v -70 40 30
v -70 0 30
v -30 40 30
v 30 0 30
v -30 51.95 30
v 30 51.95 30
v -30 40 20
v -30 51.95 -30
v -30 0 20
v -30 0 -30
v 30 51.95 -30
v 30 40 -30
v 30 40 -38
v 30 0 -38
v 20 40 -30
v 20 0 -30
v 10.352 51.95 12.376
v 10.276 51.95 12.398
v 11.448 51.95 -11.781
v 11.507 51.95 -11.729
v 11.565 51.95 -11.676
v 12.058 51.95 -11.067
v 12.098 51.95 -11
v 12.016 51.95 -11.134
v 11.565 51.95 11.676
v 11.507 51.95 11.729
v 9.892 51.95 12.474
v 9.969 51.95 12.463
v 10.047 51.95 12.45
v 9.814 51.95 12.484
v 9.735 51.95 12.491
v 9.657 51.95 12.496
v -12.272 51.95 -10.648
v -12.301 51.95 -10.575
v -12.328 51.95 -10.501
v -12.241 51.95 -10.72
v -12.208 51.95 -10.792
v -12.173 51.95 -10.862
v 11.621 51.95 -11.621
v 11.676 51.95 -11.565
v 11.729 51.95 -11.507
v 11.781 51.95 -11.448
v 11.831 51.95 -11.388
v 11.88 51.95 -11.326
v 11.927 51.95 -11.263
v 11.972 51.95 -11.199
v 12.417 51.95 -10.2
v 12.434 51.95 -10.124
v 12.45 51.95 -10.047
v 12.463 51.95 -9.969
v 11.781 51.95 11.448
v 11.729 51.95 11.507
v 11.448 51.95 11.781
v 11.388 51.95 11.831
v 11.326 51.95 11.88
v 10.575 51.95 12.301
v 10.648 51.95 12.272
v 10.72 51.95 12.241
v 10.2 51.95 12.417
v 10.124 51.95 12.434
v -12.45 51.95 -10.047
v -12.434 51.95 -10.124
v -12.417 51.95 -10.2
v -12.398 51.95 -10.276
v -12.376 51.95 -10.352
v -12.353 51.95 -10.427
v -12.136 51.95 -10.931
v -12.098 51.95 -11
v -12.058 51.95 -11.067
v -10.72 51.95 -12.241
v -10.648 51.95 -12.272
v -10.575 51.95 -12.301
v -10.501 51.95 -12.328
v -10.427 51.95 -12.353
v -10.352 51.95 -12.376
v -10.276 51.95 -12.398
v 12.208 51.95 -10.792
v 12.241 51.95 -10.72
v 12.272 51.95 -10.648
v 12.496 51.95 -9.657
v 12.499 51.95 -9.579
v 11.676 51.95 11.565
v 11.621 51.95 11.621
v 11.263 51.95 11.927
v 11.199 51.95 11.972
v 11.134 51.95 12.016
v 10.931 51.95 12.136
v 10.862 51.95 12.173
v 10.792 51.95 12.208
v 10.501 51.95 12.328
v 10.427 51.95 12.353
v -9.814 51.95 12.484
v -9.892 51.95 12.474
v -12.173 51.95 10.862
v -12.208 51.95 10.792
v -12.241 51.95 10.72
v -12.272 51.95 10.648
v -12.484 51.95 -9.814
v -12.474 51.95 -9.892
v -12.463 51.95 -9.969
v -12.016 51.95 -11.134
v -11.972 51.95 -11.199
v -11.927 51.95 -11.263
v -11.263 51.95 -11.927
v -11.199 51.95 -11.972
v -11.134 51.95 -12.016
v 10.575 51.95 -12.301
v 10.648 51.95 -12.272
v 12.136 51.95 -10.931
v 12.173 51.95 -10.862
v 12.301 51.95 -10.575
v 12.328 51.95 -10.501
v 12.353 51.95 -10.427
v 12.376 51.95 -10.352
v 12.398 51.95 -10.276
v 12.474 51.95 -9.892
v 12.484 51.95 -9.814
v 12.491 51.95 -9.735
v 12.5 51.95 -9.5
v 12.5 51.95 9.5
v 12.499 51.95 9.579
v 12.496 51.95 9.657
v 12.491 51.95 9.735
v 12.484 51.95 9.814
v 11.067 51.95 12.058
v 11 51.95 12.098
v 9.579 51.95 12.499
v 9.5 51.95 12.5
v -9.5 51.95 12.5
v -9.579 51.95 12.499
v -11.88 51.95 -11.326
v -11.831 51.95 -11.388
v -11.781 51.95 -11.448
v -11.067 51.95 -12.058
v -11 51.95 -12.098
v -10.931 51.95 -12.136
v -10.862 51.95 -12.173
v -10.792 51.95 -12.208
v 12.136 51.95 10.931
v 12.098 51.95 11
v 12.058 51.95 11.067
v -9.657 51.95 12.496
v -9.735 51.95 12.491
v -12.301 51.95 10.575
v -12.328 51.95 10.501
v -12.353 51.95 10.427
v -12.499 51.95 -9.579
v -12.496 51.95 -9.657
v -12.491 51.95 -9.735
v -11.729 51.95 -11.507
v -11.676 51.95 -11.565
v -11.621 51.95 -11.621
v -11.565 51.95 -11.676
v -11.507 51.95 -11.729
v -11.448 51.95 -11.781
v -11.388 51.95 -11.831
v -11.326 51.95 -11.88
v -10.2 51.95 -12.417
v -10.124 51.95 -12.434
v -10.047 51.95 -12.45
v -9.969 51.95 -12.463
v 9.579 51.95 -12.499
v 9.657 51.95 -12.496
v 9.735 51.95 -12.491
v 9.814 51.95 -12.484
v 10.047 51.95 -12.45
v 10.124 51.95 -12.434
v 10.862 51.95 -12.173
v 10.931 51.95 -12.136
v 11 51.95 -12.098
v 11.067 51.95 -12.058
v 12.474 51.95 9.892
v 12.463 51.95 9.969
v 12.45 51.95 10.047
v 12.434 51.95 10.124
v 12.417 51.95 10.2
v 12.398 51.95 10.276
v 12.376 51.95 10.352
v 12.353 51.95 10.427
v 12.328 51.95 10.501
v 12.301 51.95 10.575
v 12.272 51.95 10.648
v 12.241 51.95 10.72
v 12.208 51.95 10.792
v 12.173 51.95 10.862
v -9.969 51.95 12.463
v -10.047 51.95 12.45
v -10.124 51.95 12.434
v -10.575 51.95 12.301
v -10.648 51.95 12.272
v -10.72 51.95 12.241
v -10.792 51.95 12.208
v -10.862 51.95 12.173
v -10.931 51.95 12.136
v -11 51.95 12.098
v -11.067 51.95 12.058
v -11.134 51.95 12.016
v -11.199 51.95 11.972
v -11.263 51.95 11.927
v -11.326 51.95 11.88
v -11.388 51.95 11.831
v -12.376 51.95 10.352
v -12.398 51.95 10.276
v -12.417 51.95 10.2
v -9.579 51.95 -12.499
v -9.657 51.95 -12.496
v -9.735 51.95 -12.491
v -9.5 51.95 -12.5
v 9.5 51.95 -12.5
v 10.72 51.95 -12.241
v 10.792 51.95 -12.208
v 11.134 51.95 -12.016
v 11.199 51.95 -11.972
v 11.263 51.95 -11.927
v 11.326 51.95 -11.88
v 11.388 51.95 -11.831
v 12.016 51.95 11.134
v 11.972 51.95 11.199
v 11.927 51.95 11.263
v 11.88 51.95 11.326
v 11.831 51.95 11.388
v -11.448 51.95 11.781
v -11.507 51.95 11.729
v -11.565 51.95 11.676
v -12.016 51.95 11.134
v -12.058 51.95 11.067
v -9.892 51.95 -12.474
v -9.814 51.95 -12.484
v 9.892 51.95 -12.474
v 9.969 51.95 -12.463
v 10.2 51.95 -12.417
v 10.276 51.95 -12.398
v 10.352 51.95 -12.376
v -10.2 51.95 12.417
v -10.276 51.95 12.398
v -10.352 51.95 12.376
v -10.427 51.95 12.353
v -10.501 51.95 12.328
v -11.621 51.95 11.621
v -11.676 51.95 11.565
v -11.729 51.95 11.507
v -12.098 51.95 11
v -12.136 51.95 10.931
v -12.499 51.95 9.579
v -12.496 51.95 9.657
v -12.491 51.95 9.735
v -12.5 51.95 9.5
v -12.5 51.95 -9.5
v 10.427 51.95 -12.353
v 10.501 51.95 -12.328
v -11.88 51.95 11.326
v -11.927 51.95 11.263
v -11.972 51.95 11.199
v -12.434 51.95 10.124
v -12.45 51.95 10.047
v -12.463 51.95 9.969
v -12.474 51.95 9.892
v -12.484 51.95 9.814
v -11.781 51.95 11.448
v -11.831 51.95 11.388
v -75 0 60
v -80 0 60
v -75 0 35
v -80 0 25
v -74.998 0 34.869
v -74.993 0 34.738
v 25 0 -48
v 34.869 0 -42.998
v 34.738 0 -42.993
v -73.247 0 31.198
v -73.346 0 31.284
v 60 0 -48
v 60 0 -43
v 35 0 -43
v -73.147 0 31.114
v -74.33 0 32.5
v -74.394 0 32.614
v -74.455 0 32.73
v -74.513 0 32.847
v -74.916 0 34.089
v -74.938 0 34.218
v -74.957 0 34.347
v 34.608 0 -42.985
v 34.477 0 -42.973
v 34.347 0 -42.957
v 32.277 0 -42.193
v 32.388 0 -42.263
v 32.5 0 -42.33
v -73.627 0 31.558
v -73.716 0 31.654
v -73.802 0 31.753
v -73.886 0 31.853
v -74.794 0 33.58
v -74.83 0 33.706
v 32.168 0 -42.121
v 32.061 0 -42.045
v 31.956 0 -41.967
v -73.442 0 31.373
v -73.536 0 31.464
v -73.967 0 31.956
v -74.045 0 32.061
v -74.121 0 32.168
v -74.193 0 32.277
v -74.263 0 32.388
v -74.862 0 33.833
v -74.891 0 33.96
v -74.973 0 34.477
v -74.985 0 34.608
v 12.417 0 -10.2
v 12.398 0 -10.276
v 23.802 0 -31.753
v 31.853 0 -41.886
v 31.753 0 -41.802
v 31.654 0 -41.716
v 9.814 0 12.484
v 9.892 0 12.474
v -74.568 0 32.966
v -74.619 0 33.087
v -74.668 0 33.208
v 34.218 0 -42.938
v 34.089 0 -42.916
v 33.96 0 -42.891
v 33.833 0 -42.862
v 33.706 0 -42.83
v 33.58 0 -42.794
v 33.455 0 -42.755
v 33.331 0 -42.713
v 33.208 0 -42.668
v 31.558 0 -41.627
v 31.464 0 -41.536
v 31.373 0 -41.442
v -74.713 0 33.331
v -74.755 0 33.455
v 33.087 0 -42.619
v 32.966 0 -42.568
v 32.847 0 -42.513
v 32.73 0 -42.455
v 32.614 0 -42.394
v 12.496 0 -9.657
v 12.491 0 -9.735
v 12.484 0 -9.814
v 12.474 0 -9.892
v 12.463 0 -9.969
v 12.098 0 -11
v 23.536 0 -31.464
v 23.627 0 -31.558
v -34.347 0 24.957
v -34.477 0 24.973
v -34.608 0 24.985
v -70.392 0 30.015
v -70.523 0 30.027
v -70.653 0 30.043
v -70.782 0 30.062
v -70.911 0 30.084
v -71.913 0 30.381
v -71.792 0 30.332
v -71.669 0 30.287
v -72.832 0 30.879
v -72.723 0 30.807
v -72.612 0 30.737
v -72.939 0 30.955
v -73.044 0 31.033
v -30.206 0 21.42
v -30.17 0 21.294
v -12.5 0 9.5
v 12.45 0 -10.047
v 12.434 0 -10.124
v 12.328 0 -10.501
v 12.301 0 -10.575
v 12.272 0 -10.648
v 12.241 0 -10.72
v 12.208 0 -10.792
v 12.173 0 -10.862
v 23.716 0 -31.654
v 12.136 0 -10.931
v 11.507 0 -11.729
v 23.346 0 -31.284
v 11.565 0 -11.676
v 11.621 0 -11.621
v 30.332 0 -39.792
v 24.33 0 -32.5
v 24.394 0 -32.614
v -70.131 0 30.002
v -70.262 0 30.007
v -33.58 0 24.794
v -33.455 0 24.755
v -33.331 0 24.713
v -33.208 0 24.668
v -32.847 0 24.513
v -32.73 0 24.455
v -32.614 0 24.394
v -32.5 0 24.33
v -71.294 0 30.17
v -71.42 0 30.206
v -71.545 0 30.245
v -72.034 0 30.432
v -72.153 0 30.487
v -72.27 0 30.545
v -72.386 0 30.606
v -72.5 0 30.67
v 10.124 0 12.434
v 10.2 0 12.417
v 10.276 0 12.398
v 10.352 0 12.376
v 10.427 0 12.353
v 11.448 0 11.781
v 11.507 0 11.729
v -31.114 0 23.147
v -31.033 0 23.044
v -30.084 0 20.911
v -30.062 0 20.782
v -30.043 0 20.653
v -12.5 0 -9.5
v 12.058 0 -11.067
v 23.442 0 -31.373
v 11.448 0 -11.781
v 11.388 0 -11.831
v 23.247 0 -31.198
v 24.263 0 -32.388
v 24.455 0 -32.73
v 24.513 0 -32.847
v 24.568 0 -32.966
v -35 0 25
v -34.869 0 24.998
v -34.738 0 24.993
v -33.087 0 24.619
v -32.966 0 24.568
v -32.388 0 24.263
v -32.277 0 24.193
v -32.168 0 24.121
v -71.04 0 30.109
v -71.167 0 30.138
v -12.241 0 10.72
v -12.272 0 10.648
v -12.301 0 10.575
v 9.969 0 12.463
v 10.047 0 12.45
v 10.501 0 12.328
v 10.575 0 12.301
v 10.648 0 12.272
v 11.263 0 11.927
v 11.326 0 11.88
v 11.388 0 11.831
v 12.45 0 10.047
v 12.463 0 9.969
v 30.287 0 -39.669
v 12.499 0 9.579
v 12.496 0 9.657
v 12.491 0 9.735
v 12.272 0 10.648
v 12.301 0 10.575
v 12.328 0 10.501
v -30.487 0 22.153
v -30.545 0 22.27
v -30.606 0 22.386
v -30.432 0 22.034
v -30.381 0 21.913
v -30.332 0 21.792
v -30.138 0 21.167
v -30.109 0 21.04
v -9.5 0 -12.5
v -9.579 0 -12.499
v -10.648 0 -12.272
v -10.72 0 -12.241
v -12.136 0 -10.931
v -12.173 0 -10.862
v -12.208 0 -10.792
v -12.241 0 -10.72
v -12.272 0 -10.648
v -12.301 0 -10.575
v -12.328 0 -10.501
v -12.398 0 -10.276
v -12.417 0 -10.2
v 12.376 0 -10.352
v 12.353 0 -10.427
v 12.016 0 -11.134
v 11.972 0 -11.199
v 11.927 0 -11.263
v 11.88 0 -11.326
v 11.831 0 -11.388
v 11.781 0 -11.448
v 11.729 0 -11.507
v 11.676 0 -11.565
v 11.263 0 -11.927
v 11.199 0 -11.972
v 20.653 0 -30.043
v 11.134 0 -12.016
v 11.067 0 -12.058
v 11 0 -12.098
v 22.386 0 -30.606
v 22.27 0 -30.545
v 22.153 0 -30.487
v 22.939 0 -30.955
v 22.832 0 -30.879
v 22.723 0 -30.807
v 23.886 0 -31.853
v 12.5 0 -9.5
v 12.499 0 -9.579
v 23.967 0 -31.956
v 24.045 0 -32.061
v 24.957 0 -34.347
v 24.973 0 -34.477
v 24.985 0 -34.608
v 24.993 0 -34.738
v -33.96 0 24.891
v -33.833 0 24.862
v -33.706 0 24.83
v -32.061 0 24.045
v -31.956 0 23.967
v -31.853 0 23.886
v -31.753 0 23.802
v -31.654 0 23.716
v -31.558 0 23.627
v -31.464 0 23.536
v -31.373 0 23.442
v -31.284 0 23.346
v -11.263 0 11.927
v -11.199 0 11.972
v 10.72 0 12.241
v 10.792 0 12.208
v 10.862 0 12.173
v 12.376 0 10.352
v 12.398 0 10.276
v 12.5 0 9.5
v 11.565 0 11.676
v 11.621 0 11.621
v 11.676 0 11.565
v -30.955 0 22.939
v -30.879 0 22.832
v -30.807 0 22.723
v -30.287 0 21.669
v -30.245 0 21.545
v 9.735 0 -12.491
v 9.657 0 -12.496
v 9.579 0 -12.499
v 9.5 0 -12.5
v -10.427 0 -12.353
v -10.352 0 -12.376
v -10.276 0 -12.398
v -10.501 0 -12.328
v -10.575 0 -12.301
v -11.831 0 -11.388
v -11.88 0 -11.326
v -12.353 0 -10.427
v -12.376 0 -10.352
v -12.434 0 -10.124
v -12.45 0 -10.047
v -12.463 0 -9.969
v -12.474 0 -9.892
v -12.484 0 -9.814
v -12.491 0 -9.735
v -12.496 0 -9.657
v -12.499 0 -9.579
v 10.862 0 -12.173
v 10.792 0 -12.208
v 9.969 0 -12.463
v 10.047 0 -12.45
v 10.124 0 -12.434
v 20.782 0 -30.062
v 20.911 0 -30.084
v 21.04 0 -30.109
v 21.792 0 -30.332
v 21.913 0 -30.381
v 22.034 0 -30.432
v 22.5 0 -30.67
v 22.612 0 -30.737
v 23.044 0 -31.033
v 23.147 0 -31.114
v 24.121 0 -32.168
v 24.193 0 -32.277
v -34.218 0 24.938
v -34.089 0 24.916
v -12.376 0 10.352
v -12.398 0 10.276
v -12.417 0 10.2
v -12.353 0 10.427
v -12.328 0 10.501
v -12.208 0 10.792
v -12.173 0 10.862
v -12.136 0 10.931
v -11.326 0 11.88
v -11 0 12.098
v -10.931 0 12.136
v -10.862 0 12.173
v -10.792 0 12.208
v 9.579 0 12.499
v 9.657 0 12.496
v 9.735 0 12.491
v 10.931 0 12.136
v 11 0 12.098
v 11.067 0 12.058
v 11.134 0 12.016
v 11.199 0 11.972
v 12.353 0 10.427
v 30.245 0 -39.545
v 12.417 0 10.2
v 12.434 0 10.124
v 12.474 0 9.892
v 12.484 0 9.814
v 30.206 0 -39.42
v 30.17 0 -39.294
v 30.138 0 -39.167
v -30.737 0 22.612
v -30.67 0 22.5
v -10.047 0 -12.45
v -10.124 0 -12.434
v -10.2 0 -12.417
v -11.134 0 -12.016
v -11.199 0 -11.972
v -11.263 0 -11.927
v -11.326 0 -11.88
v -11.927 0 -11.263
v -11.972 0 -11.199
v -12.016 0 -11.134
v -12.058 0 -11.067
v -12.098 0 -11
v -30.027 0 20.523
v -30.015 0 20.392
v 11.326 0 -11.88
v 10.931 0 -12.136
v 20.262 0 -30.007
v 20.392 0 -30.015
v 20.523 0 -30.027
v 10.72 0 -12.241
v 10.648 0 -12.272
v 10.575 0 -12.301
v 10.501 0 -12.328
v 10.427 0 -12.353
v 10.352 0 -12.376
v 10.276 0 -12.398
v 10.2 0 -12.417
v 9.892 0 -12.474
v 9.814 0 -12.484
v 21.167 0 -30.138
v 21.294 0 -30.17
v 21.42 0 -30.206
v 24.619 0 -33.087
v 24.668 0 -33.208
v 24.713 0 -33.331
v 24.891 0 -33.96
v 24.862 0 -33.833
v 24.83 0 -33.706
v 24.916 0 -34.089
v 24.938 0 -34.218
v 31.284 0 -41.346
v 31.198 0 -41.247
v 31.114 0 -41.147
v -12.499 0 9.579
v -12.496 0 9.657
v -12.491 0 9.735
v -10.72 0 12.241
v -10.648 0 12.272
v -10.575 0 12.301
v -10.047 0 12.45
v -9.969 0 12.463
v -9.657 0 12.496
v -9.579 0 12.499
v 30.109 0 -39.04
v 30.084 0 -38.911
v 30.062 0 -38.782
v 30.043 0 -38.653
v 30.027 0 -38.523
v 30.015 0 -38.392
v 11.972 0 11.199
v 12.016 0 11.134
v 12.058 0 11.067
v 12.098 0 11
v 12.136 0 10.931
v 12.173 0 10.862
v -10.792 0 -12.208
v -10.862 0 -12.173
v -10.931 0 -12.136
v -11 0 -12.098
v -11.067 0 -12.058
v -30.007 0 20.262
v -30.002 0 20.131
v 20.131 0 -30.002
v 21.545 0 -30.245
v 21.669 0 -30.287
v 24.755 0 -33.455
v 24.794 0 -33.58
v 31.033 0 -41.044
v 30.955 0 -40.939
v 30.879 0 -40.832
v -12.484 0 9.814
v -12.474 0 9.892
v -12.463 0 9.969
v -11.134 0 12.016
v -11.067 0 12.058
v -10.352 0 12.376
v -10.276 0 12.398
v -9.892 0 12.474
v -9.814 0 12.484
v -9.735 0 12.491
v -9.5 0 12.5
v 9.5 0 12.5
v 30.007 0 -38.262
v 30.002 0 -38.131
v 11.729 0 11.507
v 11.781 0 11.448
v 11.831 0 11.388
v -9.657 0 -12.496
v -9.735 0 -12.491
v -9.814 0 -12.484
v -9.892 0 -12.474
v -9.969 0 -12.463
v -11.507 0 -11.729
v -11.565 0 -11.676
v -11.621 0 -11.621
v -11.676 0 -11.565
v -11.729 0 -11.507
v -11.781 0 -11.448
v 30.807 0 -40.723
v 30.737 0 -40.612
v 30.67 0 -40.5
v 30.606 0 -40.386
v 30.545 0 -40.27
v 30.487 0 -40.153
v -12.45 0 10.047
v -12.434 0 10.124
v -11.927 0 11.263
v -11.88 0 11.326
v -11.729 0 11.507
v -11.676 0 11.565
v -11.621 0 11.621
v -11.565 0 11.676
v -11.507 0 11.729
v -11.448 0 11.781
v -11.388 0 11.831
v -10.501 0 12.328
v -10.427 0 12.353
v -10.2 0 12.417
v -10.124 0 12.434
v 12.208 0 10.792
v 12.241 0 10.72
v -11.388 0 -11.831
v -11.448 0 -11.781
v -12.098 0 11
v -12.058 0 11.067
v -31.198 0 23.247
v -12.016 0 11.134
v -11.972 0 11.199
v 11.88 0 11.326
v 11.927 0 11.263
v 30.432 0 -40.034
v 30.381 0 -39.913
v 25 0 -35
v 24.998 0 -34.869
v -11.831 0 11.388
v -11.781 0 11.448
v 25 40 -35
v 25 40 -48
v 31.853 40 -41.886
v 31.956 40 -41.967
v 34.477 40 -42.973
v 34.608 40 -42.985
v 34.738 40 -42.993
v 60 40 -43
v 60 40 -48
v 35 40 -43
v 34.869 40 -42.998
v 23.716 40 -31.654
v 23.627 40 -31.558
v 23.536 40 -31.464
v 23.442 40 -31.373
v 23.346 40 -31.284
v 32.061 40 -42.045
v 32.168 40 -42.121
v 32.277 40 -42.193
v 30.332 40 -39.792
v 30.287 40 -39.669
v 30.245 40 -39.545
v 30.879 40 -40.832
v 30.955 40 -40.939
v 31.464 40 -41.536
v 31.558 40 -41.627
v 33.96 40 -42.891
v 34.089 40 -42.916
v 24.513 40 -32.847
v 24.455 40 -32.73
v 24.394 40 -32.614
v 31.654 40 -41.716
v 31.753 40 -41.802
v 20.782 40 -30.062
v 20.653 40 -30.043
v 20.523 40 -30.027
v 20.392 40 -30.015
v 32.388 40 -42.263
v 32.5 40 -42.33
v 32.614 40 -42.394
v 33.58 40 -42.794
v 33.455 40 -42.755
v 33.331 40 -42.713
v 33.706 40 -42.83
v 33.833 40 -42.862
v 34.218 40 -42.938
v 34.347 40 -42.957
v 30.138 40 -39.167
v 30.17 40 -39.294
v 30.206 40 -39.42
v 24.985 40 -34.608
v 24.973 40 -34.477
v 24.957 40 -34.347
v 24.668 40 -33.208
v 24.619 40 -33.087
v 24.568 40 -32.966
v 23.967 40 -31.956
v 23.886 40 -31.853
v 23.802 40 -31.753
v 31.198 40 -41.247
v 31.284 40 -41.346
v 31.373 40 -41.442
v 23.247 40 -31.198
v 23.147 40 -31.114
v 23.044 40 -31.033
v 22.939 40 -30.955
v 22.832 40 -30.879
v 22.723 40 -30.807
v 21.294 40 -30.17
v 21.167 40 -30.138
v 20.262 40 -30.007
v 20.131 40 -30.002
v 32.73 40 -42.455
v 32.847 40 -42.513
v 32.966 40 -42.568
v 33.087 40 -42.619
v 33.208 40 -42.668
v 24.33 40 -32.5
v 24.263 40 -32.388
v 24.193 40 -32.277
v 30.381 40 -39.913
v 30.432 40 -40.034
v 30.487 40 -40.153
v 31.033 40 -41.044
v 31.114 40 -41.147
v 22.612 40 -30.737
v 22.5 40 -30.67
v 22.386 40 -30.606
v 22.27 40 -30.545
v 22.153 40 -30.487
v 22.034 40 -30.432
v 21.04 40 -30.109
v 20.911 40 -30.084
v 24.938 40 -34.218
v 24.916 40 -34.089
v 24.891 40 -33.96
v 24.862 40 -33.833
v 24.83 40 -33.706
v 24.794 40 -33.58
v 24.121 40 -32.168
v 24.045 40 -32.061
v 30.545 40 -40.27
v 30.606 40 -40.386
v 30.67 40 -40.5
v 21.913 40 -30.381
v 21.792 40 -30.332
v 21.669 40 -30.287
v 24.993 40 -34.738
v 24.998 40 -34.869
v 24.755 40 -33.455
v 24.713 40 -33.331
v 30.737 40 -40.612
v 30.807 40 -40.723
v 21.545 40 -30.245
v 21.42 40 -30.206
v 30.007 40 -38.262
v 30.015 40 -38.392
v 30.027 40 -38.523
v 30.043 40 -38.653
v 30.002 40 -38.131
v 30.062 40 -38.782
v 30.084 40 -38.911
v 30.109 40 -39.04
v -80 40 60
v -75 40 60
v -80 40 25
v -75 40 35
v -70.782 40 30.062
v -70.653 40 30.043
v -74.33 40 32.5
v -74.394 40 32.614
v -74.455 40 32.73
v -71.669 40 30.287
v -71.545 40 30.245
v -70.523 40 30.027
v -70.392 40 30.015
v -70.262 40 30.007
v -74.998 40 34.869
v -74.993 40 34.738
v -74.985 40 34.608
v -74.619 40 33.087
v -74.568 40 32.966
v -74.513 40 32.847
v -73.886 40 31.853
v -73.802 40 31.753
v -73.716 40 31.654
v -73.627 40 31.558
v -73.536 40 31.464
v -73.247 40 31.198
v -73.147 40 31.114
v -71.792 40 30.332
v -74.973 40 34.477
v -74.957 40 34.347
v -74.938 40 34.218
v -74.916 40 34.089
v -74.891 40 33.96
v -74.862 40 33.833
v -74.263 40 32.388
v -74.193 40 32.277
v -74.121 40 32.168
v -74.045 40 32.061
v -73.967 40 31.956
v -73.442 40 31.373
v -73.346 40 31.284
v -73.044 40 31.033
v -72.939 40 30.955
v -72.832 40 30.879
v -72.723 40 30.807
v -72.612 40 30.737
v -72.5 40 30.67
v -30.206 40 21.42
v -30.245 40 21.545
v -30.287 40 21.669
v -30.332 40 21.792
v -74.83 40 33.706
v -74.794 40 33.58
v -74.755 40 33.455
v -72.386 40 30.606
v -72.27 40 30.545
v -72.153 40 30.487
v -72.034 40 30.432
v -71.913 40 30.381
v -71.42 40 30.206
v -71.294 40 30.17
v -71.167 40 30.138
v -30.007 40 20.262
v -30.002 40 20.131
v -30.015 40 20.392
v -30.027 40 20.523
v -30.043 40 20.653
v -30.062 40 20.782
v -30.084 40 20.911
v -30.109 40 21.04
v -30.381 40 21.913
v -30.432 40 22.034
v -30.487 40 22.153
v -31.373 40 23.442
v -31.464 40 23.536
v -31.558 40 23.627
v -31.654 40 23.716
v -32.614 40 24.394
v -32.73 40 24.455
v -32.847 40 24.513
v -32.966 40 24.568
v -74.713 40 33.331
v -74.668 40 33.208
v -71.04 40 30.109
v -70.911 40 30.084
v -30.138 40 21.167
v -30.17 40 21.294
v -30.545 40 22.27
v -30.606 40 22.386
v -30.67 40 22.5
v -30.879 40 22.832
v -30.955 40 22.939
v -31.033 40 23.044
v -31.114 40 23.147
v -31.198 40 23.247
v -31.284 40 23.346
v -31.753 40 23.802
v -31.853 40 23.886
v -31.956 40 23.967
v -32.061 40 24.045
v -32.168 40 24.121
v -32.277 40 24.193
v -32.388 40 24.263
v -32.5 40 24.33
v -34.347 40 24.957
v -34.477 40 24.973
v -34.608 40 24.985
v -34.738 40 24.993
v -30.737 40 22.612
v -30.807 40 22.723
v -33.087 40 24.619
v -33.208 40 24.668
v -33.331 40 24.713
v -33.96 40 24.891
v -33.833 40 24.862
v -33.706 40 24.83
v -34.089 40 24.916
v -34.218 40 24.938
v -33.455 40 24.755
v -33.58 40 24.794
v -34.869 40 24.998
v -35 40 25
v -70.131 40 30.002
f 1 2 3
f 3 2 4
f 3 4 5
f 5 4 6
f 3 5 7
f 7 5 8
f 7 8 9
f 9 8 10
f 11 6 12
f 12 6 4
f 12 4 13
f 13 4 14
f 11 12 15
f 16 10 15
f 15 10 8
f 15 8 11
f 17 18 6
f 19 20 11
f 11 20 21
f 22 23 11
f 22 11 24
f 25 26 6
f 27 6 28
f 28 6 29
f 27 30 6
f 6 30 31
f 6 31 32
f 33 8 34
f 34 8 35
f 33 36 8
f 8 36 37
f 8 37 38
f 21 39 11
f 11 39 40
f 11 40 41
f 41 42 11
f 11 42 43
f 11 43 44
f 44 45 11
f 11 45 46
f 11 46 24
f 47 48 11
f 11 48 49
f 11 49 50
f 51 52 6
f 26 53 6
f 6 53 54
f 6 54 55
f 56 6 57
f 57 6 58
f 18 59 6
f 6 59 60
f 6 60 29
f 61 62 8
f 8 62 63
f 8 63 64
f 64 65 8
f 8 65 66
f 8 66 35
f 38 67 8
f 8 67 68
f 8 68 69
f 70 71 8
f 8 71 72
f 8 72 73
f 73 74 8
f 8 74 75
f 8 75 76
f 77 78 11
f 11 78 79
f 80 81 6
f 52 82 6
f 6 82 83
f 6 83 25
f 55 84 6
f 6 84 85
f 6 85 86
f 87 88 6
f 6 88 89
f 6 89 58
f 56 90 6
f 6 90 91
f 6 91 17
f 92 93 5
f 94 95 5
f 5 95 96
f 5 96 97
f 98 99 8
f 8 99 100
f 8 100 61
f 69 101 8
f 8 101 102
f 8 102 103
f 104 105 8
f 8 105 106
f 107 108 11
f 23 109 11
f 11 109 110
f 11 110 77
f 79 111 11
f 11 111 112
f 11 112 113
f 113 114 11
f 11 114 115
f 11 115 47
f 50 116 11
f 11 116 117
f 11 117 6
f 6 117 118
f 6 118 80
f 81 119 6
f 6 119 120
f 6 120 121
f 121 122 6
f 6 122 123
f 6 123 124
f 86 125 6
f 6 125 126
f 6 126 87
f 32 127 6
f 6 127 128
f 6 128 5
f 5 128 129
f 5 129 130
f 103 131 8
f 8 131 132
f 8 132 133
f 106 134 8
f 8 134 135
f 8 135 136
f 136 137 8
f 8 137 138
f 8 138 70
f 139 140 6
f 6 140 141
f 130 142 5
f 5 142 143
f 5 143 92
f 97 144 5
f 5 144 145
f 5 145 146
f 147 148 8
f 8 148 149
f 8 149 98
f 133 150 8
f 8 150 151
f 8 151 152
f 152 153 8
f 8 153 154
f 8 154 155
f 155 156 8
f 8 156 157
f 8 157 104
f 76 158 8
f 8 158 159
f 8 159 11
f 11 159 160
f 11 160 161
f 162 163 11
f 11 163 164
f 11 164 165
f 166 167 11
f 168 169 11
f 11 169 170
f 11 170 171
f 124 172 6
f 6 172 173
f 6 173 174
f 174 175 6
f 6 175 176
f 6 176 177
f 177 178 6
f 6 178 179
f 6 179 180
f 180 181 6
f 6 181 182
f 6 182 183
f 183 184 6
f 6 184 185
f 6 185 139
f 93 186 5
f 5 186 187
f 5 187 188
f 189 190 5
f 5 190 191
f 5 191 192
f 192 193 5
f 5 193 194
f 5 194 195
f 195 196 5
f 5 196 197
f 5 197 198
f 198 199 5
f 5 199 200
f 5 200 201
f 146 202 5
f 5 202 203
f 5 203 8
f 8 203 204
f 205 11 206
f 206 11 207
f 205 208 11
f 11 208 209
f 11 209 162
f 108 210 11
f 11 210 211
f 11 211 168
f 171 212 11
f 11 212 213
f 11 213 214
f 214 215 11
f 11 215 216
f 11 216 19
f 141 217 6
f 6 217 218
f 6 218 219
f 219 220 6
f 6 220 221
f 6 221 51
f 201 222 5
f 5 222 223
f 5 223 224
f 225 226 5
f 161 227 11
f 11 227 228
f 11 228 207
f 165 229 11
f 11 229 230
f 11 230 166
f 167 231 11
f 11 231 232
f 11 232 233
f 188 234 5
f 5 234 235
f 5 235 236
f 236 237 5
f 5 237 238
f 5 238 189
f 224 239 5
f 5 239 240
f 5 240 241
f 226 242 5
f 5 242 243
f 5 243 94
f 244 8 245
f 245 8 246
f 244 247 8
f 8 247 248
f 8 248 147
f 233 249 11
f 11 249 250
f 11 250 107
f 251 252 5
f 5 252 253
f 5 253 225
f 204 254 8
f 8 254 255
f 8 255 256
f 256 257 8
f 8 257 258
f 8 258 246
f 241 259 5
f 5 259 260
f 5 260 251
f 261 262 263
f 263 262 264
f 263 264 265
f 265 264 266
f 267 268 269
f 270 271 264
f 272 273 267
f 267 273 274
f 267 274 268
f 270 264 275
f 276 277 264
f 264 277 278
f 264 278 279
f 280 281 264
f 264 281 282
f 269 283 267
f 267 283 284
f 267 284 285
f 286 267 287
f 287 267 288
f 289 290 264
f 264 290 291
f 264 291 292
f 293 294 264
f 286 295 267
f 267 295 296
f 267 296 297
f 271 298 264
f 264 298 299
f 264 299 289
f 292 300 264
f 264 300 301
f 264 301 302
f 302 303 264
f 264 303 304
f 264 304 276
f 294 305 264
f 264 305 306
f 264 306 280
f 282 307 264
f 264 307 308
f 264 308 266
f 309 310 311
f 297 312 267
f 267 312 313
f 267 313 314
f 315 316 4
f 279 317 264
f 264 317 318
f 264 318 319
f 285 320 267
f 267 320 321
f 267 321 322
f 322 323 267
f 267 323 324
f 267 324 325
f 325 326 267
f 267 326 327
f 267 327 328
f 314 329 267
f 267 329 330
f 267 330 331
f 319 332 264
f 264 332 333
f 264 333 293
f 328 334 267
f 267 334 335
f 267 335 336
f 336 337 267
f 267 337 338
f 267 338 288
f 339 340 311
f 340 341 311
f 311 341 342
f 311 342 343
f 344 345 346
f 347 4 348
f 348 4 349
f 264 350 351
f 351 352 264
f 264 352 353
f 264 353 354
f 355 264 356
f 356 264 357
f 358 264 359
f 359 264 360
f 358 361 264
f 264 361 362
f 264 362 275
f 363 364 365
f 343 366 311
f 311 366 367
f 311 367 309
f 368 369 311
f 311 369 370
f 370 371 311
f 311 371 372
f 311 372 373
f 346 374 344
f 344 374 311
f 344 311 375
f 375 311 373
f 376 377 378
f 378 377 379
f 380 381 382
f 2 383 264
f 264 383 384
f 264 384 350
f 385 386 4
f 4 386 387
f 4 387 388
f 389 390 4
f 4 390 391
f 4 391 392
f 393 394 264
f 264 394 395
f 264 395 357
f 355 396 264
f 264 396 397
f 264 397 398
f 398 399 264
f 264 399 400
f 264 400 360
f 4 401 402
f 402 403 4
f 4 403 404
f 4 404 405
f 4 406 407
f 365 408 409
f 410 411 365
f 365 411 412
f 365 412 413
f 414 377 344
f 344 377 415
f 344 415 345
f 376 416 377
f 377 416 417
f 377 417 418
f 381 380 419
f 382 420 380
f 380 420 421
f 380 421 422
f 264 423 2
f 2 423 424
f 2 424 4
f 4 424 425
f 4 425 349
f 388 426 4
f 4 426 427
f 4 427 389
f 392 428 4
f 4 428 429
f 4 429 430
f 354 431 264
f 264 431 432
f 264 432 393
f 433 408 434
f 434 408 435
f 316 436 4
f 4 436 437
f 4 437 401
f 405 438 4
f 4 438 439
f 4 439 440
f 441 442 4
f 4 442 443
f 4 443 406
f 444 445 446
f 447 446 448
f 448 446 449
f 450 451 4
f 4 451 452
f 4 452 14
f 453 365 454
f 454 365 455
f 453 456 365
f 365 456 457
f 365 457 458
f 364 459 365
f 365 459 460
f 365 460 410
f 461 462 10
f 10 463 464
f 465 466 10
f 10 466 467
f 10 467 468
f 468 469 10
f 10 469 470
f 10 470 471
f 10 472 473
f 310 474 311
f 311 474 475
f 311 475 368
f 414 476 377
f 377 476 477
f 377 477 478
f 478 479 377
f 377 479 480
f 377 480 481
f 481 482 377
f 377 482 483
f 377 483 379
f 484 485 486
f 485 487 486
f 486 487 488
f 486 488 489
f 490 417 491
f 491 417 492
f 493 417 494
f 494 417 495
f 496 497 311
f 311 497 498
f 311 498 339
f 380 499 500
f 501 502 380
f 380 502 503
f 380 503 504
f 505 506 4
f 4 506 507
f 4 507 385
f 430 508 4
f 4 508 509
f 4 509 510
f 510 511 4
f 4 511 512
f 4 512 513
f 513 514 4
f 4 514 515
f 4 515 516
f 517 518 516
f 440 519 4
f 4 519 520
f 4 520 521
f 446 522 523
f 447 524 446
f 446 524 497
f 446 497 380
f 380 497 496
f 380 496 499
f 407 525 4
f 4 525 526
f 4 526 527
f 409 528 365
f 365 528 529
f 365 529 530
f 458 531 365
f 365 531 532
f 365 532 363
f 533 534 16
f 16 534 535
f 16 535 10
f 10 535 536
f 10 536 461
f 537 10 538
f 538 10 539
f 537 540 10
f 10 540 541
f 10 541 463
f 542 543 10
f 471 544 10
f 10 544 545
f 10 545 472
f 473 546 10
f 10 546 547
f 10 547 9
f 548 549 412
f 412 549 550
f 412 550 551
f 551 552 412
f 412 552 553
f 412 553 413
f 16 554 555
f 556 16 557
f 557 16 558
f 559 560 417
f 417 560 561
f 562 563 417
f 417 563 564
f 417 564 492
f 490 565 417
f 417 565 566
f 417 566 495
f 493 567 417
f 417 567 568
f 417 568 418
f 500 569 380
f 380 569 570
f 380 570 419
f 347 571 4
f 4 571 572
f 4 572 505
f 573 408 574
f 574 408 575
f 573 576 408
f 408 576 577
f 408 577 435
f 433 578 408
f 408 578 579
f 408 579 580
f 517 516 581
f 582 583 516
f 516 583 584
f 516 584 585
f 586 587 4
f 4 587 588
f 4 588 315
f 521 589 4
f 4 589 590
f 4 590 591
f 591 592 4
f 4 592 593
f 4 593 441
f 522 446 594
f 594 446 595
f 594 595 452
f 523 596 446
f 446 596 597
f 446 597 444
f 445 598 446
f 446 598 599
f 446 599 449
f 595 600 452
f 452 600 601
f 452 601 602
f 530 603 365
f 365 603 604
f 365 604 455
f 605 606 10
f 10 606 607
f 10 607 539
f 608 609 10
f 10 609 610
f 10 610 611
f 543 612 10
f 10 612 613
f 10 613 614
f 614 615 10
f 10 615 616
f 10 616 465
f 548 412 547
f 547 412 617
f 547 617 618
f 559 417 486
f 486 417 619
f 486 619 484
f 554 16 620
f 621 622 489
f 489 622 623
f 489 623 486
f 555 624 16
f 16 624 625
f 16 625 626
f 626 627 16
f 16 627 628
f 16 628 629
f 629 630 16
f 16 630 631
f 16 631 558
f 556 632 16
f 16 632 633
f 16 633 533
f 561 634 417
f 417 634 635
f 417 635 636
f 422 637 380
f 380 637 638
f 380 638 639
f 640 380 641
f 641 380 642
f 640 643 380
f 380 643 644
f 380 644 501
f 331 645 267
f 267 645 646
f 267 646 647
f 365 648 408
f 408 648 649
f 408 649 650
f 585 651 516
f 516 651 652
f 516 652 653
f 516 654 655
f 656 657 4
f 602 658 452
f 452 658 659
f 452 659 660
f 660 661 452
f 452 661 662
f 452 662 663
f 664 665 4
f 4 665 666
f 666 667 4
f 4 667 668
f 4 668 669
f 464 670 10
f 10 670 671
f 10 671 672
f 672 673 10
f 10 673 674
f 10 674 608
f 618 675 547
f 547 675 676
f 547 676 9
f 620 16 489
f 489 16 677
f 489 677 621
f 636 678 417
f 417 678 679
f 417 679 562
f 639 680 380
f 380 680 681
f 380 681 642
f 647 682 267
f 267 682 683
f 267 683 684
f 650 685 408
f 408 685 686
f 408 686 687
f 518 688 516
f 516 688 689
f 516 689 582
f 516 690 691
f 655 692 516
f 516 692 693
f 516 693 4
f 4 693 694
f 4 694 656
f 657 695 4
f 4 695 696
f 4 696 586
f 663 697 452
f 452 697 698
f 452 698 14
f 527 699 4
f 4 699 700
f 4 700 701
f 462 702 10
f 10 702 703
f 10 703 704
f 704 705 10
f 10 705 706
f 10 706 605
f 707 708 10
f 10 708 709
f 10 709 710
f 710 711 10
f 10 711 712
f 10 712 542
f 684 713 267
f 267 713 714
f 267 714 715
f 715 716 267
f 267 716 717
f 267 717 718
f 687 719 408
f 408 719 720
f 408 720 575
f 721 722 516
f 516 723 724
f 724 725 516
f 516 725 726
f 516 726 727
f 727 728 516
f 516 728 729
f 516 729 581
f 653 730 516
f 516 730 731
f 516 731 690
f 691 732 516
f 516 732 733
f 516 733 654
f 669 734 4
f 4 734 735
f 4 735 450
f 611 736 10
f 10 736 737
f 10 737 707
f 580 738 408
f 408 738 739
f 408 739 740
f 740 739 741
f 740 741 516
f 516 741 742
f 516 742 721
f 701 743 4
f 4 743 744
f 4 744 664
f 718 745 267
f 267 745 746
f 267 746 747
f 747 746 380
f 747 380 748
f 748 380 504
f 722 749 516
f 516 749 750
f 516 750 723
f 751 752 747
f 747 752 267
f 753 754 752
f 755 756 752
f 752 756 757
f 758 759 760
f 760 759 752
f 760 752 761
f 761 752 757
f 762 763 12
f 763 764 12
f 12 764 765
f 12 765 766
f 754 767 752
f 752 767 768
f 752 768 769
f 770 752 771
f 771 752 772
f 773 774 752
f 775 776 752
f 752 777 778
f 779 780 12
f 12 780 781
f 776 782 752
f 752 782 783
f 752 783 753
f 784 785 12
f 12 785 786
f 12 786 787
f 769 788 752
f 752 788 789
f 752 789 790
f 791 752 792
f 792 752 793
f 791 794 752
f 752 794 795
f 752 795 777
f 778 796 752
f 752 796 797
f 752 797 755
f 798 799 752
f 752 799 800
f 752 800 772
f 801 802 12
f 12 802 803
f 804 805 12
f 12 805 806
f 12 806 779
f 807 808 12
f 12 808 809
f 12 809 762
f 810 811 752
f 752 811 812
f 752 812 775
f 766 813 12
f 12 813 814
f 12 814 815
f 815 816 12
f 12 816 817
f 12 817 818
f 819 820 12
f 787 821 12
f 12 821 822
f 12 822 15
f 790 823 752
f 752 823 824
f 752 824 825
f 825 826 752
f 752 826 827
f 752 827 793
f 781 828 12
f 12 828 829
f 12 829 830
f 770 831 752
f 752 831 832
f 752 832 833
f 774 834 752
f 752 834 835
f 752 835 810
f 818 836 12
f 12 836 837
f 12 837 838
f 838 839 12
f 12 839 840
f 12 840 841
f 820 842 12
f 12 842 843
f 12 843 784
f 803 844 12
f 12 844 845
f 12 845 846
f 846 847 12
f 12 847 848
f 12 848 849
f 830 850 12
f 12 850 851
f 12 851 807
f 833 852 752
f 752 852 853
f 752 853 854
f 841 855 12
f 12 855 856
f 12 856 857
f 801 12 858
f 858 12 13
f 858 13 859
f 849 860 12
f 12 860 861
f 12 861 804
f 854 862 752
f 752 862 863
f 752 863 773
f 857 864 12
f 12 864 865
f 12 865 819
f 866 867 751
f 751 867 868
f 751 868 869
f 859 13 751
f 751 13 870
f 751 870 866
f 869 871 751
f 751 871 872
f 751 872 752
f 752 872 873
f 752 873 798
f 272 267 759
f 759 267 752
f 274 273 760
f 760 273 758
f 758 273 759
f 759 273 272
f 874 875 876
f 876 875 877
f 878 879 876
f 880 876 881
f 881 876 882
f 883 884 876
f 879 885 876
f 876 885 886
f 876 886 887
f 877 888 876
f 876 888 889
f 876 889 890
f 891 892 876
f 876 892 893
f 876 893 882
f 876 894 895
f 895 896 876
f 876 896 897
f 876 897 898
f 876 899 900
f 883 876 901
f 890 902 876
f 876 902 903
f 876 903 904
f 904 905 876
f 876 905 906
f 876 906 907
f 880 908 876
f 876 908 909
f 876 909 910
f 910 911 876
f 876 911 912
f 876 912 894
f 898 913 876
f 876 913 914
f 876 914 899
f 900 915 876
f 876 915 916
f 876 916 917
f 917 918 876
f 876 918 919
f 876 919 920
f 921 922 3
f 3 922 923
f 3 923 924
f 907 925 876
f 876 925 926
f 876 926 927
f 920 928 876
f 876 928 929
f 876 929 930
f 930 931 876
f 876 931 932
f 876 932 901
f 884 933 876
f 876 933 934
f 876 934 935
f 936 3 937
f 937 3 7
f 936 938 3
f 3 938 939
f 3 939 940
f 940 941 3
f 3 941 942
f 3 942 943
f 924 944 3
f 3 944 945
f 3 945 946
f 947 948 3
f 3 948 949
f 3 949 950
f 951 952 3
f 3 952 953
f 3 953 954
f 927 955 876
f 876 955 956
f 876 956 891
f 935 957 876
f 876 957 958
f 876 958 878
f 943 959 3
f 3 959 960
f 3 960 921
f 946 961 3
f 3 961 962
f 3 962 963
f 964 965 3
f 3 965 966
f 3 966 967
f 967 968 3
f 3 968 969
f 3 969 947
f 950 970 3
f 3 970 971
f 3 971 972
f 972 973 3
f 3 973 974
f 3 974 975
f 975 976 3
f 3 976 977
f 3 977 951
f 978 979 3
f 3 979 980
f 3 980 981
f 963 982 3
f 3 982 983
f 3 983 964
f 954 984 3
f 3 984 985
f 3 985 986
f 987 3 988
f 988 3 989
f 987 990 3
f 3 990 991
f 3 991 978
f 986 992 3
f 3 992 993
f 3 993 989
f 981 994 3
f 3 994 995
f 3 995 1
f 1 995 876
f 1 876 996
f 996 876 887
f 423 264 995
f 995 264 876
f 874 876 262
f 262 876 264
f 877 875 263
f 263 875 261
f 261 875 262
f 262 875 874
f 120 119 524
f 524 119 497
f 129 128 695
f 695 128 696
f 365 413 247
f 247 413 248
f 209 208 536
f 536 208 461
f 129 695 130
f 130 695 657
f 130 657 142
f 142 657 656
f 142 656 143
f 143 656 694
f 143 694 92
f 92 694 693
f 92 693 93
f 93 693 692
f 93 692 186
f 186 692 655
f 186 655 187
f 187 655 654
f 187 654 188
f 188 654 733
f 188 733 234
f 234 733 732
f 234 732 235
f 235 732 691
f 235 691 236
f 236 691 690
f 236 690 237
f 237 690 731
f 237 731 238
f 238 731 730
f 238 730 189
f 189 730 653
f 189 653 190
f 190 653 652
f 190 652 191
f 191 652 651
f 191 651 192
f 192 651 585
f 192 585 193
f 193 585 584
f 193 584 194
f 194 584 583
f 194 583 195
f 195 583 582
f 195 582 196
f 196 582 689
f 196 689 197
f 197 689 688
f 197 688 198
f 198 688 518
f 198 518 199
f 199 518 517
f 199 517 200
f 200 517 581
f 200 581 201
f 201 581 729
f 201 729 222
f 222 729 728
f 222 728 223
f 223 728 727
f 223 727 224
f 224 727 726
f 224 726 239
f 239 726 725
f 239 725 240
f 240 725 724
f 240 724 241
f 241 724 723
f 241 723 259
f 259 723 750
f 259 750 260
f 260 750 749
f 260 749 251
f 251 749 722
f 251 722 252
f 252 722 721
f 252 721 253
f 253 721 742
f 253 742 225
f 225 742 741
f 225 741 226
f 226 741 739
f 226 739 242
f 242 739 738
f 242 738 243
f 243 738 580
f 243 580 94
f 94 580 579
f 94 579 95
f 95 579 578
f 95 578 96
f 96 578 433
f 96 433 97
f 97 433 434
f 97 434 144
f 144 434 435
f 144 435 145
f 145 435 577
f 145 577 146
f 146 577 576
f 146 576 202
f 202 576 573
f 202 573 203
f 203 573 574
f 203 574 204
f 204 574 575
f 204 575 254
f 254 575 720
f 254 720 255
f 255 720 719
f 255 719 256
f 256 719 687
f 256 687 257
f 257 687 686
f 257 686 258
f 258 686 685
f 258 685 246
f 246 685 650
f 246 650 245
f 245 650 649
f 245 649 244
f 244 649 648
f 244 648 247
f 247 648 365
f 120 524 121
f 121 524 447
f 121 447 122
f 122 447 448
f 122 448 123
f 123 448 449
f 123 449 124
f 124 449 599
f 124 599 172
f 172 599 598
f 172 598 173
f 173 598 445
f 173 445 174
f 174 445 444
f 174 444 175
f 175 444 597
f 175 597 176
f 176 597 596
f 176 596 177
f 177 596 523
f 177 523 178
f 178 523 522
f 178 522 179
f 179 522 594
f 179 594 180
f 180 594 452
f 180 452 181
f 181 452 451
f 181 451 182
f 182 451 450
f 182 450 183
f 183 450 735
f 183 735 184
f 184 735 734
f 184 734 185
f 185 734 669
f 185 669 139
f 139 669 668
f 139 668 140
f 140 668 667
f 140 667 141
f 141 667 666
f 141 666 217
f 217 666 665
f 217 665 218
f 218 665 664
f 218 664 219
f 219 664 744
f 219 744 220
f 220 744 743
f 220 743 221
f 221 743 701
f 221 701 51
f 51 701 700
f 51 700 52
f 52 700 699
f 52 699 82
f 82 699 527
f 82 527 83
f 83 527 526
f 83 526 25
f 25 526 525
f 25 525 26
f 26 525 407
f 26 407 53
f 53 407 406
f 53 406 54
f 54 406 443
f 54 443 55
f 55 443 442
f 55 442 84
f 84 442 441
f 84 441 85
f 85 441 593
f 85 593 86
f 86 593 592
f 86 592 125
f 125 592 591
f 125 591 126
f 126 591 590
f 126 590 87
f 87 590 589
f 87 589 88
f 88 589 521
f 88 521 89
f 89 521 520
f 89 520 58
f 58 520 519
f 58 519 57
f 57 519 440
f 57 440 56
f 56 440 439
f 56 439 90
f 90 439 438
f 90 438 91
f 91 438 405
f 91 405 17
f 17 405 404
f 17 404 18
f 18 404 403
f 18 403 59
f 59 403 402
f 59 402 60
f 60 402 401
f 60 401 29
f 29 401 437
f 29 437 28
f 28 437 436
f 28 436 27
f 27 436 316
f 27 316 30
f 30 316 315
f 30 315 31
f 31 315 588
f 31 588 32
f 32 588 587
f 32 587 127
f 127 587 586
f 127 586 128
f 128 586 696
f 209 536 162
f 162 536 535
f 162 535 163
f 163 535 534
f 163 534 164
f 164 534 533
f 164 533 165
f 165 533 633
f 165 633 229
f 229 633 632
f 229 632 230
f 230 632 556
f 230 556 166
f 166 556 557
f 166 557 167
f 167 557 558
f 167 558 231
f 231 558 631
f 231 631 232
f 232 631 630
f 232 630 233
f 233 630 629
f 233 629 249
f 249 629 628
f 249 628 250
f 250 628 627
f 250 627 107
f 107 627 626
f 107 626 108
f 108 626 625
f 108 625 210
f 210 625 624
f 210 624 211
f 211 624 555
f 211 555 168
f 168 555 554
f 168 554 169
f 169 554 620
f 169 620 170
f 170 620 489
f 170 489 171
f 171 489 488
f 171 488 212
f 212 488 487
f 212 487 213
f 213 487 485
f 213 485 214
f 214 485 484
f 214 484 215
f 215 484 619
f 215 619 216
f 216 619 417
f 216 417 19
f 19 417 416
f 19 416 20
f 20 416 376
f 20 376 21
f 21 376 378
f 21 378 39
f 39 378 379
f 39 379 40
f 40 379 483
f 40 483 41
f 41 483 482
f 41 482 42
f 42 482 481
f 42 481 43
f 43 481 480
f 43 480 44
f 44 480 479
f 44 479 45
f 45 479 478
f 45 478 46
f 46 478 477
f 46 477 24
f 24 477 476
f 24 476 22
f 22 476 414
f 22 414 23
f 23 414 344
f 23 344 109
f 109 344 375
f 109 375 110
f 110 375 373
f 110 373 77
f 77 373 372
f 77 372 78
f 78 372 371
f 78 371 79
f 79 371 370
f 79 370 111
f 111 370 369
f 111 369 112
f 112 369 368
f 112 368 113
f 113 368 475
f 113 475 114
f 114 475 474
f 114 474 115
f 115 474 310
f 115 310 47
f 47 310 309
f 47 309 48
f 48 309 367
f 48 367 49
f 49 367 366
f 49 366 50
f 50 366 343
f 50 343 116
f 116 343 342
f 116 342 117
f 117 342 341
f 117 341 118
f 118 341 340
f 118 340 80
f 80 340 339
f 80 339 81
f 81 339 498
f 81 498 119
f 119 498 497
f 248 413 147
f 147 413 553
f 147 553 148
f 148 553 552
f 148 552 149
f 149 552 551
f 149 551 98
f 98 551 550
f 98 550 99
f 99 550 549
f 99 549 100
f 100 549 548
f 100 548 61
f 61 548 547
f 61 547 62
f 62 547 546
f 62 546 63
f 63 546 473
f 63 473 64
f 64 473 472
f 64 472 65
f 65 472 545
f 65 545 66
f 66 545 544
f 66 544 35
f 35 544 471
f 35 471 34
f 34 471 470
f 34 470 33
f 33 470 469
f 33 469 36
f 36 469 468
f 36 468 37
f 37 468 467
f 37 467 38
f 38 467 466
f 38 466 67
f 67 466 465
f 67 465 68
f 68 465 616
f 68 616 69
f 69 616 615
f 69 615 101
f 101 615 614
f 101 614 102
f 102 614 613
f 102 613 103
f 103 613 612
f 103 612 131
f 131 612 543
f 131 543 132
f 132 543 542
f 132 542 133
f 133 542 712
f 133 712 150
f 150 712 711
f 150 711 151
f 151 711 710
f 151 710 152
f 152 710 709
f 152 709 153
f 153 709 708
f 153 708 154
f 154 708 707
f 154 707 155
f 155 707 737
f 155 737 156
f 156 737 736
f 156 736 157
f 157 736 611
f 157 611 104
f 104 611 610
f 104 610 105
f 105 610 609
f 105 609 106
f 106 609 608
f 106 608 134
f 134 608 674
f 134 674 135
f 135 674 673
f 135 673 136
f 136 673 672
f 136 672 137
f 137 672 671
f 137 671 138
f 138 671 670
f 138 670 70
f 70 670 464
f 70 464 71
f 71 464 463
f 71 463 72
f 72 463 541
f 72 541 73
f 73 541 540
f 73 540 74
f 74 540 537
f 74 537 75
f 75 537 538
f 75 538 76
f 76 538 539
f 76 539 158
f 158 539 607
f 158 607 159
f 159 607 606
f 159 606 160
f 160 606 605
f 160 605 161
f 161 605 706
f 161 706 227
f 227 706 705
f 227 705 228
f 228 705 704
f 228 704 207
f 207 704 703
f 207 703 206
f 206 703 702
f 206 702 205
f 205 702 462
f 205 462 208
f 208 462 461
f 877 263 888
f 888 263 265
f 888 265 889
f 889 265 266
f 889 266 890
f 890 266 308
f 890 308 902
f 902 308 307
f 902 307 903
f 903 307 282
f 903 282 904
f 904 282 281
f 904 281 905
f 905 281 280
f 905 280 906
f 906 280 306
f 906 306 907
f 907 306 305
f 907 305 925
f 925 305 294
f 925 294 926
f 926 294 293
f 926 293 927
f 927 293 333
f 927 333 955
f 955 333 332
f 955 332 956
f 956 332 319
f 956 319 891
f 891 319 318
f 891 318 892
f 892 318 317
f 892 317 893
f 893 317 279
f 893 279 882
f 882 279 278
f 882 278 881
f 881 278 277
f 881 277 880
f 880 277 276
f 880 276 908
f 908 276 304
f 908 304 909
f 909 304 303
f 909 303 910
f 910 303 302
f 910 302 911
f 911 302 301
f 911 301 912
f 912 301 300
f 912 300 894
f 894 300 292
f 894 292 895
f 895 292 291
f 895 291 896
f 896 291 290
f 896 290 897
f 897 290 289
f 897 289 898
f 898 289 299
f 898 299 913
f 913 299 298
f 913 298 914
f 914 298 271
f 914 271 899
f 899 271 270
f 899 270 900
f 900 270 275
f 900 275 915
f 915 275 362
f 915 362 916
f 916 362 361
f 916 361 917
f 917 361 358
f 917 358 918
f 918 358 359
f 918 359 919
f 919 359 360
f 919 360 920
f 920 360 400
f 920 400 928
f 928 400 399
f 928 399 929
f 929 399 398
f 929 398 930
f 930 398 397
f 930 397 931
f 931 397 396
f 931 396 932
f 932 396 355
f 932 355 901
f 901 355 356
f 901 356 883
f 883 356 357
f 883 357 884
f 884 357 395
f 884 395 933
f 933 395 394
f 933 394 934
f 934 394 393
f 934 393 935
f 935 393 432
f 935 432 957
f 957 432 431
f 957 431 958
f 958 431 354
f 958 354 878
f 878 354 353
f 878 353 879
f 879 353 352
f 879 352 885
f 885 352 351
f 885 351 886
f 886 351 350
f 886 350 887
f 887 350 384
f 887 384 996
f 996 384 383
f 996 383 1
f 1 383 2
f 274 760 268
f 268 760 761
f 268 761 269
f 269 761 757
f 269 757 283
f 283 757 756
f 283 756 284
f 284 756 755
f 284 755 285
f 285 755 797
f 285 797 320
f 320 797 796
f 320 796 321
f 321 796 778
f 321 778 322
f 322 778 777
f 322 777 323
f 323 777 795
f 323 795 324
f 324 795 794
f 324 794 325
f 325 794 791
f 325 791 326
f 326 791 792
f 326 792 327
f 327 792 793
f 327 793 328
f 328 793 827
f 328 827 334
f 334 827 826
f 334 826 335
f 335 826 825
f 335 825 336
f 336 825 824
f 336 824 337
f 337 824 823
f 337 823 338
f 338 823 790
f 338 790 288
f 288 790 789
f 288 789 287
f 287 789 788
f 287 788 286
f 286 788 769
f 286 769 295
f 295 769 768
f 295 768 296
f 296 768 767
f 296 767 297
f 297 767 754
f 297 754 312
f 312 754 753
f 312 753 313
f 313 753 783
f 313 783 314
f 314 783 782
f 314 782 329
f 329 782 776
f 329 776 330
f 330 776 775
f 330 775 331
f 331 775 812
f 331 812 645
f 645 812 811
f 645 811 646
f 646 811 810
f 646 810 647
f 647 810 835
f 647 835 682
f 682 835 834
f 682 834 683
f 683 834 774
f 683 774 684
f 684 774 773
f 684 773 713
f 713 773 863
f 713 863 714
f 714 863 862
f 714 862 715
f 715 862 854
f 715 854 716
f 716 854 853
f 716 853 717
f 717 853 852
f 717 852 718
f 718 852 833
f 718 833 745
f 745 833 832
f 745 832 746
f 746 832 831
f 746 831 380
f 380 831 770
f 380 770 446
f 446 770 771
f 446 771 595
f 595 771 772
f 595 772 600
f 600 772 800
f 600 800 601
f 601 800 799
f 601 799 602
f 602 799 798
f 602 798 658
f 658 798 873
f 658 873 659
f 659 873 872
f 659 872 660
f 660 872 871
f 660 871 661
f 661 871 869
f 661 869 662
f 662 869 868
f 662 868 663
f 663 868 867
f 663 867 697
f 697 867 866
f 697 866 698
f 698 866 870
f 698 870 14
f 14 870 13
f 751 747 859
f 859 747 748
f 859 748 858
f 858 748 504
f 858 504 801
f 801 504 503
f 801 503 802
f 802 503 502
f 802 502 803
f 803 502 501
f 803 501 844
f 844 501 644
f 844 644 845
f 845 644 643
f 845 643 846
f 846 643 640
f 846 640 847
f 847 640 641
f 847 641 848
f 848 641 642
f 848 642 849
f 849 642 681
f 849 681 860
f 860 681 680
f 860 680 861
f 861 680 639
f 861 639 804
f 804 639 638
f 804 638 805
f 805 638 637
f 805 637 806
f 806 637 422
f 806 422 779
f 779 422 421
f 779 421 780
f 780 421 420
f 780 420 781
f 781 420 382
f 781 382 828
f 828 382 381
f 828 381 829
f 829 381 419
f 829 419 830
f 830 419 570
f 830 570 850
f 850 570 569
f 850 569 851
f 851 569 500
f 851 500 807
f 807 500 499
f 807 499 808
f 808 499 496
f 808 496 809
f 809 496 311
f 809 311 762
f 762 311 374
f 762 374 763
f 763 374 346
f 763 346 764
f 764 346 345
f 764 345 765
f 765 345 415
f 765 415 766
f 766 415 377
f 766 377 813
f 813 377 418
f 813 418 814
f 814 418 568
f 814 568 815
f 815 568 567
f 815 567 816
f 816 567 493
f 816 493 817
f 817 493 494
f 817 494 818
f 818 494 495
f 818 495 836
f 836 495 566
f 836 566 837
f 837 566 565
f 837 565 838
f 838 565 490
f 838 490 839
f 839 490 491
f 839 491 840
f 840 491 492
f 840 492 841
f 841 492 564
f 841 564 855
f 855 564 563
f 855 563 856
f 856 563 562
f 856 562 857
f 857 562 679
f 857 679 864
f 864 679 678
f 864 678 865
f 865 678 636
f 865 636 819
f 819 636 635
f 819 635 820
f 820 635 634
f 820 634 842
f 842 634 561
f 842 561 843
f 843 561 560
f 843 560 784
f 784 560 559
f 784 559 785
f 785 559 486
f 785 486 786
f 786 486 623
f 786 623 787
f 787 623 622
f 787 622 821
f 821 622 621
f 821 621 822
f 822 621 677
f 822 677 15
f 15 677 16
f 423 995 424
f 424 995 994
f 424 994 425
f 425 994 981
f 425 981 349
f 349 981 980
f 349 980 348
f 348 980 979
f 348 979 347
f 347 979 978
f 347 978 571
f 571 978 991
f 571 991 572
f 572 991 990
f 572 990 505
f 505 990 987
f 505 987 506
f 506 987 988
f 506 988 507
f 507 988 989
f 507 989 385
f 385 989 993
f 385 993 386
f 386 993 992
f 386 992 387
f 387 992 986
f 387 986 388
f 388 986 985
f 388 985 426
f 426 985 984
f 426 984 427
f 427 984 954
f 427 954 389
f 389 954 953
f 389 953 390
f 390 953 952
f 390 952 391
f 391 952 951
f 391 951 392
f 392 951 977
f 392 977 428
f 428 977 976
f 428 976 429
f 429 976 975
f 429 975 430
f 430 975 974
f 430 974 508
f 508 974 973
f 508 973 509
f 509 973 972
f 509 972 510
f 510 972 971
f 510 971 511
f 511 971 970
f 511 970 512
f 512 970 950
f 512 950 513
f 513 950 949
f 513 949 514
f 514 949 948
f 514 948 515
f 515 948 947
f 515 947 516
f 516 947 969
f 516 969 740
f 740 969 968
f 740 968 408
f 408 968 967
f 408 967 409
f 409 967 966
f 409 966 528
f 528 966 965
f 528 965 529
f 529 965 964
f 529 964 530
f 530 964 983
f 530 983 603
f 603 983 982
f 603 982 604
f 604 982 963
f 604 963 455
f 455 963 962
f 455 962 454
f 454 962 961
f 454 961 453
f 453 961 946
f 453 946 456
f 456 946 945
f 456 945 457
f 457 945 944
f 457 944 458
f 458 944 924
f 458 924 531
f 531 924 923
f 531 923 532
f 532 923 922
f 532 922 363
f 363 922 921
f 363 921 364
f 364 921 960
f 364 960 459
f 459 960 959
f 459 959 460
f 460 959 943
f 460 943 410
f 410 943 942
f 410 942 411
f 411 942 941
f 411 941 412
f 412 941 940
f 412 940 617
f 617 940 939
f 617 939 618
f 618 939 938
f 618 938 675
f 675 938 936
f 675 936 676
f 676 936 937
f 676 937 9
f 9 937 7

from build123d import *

# Parameters (mm, degrees)
SKETCH1_W           = 60
SKETCH1_H           = 60
BOSS_EXTRUDE1_DEPTH = 51.95
SKETCH3_W           = 5
SKETCH3_H           = 40
BOSS_EXTRUDE2_DEPTH = 18
SKETCH4_W           = 5
SKETCH4_H           = 40
BOSS_EXTRUDE3_DEPTH = 30
SKETCH5_W           = 5
SKETCH5_H           = 40
BOSS_EXTRUDE4_DEPTH = 50
SKETCH6_W           = 5
SKETCH6_H           = 40
BOSS_EXTRUDE5_DEPTH = 30
SKETCH7_W           = 25
SKETCH7_H           = 25
CUT_EXTRUDE1_DEPTH  = 52.95
FILLET1_R           = 3
FILLET2_R           = 5
FILLET3_R           = 5


with BuildPart() as part:
    # Sketch1 → Boss-Extrude1 (new body)
    with BuildSketch(Plane(origin=(0, 0, 0), x_dir=(1, 0, 0), z_dir=(0, 1, 0))):
        Rectangle(SKETCH1_W, SKETCH1_H)
    extrude(amount=BOSS_EXTRUDE1_DEPTH)

    # Sketch3 → Boss-Extrude2 (add)
    with BuildSketch(Plane(origin=(0, 0, -30), x_dir=(-1, 0, 0), z_dir=(0, 0, -1))):
        with Locations((-27.5, 20)):
            Rectangle(SKETCH3_W, SKETCH3_H)
    extrude(amount=BOSS_EXTRUDE2_DEPTH)

    # Sketch4 → Boss-Extrude3 (add)
    with BuildSketch(Plane(origin=(30, 0, 0), x_dir=(0, 0, -1), z_dir=(1, 0, 0))):
        with Locations((45.5, 20)):
            Rectangle(SKETCH4_W, SKETCH4_H)
    extrude(amount=BOSS_EXTRUDE3_DEPTH)

    # Sketch5 → Boss-Extrude4 (add)
    with BuildSketch(Plane.ZY.offset(30)):
        with Locations((27.5, 20)):
            Rectangle(SKETCH5_W, SKETCH5_H)
    extrude(amount=BOSS_EXTRUDE4_DEPTH)

    # Sketch6 → Boss-Extrude5 (add)
    with BuildSketch(Plane.XY.offset(30)):
        with Locations((-77.5, 20)):
            Rectangle(SKETCH6_W, SKETCH6_H)
    extrude(amount=BOSS_EXTRUDE5_DEPTH)

    # Sketch7 → Cut-Extrude1 (cut, through all)
    with BuildSketch(Plane(origin=(0, 51.95, 0), x_dir=(1, 0, 0), z_dir=(0, 1, 0))):
        Rectangle(SKETCH7_W, SKETCH7_H)
    extrude(amount=-CUT_EXTRUDE1_DEPTH, mode=Mode.SUBTRACT)

    # Fillet1
    fillet1_edges = [part.edges().sort_by_distance(p)[0] for p in [
        (12.5, 25.975, -12.5),
        (12.5, 25.975, 12.5),
        (-12.5, 25.975, 12.5),
        (-12.5, 25.975, -12.5),
    ]]
    fillet(fillet1_edges, radius=FILLET1_R)

    # Fillet2
    fillet2_edges = [part.edges().sort_by_distance(p)[0] for p in [
        (30, 20, -43),
        (-75, 20, 30),
    ]]
    fillet(fillet2_edges, radius=FILLET2_R)

    # Fillet3
    fillet3_edges = [part.edges().sort_by_distance(p)[0] for p in [
        (25, 20, -30),
        (-30, 20, 25),
    ]]
    fillet(fillet3_edges, radius=FILLET3_R)


solid = part.part
